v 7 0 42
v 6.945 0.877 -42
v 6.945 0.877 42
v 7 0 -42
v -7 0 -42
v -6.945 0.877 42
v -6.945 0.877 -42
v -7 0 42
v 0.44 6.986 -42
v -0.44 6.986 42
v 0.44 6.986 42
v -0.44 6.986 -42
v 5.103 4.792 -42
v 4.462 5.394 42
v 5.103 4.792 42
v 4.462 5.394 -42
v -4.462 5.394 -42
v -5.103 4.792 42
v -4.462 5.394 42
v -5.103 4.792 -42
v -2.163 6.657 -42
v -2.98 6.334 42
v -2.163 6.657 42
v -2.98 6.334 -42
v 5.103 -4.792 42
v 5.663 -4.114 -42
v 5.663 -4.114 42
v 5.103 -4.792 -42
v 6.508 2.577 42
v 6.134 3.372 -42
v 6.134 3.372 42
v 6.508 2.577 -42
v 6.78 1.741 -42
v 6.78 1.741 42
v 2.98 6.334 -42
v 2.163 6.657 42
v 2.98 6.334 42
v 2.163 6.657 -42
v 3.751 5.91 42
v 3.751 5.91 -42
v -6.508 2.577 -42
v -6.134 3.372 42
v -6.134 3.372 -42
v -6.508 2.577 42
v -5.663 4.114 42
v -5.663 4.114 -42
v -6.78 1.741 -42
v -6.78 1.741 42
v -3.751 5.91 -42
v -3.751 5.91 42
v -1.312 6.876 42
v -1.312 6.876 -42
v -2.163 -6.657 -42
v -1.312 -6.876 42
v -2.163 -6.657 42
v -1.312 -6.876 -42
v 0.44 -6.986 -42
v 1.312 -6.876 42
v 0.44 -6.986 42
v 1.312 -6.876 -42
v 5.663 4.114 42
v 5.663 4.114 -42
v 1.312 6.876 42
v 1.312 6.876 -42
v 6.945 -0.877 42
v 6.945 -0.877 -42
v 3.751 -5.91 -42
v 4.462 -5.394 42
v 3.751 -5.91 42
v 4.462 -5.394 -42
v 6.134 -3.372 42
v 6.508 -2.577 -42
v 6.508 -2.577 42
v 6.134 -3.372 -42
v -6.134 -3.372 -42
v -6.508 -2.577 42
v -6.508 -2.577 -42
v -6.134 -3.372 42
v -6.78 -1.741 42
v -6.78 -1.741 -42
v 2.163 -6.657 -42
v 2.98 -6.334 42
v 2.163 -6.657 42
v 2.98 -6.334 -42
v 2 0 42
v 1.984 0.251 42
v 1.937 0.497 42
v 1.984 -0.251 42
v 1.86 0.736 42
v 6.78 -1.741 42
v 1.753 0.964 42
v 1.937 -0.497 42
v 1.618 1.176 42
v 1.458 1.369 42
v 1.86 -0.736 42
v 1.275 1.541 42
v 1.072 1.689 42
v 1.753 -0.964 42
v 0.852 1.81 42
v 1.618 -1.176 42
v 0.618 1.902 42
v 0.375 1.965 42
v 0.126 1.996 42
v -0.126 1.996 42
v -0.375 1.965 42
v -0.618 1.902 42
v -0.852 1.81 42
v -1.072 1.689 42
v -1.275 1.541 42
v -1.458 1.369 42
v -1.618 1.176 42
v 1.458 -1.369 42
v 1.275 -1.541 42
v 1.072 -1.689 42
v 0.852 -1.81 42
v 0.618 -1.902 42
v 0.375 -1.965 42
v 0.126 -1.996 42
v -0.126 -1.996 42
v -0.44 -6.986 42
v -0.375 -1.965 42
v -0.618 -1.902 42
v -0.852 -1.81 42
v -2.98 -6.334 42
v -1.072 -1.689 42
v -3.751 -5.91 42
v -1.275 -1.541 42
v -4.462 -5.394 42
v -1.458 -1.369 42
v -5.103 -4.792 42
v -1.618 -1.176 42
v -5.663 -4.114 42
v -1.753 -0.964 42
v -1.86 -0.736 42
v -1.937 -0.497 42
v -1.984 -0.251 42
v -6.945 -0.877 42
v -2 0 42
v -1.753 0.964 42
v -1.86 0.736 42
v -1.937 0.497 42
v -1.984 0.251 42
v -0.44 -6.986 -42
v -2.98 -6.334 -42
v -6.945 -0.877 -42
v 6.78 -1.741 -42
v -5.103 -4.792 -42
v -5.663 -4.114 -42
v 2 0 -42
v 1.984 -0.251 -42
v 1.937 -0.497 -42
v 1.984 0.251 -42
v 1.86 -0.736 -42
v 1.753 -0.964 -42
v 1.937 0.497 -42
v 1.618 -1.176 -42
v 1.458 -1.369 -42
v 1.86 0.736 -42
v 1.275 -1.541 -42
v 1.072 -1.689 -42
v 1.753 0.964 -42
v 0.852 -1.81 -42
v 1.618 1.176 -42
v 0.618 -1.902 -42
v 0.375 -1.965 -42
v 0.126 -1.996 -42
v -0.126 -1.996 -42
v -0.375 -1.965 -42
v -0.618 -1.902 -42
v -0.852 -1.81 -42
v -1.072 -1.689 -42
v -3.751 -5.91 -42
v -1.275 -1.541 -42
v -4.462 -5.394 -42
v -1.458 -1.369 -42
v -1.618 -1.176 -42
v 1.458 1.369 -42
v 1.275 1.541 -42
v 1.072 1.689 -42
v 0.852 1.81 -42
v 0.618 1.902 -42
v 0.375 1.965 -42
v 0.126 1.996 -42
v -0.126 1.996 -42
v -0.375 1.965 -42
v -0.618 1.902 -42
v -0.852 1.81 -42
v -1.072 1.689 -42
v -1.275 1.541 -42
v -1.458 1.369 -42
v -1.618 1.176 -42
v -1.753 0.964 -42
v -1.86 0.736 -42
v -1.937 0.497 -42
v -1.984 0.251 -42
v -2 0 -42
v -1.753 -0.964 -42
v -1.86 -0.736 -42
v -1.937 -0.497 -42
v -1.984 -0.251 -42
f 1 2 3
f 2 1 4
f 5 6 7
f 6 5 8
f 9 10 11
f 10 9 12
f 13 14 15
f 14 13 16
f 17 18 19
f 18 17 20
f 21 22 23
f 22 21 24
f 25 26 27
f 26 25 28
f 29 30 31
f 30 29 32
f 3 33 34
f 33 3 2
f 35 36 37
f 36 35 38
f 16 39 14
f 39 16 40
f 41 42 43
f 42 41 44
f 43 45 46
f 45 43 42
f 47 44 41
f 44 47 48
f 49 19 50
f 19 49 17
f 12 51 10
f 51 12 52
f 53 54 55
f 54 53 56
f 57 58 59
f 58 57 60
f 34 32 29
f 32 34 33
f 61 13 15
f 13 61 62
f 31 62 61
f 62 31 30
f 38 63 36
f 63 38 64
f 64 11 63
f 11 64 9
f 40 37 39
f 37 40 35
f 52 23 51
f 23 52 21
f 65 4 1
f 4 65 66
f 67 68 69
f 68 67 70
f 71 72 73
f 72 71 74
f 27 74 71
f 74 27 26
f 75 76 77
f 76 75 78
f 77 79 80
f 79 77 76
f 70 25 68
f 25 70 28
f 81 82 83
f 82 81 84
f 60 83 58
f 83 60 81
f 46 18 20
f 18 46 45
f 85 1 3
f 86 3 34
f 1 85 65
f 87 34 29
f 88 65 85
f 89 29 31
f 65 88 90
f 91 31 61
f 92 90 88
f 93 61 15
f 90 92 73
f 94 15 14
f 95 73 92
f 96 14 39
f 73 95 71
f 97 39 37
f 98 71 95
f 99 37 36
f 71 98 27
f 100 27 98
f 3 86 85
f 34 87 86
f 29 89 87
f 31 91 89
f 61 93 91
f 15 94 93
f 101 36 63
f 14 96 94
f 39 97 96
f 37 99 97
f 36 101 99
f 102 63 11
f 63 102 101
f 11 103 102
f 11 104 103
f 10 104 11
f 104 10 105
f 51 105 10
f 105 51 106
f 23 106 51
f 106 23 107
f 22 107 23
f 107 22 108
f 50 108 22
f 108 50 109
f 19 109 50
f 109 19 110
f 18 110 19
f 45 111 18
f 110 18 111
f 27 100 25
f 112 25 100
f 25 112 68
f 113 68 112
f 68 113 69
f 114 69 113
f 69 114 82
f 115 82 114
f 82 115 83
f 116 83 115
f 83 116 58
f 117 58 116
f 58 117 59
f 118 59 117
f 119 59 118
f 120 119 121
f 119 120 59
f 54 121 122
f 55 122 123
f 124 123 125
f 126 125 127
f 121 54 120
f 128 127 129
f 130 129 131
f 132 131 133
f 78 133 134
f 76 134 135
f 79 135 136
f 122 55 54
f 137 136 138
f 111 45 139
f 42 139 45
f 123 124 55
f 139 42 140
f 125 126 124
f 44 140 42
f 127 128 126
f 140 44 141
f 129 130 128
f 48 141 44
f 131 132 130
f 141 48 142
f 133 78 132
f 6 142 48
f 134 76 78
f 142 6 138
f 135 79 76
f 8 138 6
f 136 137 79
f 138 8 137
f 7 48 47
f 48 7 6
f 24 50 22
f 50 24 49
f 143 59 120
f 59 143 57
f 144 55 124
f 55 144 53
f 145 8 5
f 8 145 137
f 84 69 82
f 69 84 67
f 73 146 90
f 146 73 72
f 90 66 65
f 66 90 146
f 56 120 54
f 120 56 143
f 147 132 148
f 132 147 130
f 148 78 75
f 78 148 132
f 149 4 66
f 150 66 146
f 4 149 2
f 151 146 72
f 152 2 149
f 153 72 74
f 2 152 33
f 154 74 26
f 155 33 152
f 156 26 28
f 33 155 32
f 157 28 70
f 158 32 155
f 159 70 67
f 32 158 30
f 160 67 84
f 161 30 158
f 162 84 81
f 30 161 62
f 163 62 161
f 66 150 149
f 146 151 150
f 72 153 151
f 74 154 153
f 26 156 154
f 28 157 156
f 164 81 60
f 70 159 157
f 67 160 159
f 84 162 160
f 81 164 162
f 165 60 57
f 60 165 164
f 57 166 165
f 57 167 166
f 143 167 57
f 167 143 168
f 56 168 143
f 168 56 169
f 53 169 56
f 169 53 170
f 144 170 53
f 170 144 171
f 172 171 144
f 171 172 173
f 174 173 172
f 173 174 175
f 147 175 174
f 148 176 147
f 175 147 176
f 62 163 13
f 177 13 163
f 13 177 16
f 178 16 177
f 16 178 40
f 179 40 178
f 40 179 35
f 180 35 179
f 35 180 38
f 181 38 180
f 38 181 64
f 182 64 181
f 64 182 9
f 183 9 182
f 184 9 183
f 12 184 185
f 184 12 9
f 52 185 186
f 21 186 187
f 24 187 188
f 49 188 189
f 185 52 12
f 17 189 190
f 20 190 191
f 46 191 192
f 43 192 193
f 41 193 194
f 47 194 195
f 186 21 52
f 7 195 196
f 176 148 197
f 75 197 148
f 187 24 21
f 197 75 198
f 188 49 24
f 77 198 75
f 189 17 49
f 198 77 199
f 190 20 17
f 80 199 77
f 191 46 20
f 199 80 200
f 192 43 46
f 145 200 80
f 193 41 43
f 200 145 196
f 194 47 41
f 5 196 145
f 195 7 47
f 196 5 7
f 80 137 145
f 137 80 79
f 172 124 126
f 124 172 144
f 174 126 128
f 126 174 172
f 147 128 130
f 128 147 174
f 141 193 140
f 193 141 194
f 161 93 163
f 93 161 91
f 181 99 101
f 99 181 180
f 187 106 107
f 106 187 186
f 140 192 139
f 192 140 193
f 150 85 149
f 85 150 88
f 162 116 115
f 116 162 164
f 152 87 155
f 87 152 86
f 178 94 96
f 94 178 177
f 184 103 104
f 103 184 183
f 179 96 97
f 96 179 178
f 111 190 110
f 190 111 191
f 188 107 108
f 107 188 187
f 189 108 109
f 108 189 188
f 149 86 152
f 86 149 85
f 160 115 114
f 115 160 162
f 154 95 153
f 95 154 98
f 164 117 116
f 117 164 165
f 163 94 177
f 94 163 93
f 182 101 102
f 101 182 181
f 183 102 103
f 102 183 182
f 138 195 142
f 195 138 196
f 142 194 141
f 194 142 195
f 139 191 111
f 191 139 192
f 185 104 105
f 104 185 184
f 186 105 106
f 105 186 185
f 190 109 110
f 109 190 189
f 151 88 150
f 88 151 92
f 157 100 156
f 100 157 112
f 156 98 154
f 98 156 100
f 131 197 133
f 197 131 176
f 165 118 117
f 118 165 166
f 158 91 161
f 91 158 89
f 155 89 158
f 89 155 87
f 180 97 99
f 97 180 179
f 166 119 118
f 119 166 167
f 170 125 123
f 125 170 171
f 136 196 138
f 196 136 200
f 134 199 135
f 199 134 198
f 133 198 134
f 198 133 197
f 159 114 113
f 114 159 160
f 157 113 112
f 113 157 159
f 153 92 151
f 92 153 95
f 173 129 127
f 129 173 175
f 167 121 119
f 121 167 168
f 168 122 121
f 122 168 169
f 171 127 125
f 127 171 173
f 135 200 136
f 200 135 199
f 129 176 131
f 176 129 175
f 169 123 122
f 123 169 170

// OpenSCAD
$fn = 50;


difference() {
	union() {
		translate(v = [0, 0, -42.0000000000]) {
			cylinder(h = 84, r = 7.0000000000);
		}
	}
	union() {
		translate(v = [0, 0, -100.0000000000]) {
			cylinder(h = 200, r = 2.0000000000);
		}
	}
}
